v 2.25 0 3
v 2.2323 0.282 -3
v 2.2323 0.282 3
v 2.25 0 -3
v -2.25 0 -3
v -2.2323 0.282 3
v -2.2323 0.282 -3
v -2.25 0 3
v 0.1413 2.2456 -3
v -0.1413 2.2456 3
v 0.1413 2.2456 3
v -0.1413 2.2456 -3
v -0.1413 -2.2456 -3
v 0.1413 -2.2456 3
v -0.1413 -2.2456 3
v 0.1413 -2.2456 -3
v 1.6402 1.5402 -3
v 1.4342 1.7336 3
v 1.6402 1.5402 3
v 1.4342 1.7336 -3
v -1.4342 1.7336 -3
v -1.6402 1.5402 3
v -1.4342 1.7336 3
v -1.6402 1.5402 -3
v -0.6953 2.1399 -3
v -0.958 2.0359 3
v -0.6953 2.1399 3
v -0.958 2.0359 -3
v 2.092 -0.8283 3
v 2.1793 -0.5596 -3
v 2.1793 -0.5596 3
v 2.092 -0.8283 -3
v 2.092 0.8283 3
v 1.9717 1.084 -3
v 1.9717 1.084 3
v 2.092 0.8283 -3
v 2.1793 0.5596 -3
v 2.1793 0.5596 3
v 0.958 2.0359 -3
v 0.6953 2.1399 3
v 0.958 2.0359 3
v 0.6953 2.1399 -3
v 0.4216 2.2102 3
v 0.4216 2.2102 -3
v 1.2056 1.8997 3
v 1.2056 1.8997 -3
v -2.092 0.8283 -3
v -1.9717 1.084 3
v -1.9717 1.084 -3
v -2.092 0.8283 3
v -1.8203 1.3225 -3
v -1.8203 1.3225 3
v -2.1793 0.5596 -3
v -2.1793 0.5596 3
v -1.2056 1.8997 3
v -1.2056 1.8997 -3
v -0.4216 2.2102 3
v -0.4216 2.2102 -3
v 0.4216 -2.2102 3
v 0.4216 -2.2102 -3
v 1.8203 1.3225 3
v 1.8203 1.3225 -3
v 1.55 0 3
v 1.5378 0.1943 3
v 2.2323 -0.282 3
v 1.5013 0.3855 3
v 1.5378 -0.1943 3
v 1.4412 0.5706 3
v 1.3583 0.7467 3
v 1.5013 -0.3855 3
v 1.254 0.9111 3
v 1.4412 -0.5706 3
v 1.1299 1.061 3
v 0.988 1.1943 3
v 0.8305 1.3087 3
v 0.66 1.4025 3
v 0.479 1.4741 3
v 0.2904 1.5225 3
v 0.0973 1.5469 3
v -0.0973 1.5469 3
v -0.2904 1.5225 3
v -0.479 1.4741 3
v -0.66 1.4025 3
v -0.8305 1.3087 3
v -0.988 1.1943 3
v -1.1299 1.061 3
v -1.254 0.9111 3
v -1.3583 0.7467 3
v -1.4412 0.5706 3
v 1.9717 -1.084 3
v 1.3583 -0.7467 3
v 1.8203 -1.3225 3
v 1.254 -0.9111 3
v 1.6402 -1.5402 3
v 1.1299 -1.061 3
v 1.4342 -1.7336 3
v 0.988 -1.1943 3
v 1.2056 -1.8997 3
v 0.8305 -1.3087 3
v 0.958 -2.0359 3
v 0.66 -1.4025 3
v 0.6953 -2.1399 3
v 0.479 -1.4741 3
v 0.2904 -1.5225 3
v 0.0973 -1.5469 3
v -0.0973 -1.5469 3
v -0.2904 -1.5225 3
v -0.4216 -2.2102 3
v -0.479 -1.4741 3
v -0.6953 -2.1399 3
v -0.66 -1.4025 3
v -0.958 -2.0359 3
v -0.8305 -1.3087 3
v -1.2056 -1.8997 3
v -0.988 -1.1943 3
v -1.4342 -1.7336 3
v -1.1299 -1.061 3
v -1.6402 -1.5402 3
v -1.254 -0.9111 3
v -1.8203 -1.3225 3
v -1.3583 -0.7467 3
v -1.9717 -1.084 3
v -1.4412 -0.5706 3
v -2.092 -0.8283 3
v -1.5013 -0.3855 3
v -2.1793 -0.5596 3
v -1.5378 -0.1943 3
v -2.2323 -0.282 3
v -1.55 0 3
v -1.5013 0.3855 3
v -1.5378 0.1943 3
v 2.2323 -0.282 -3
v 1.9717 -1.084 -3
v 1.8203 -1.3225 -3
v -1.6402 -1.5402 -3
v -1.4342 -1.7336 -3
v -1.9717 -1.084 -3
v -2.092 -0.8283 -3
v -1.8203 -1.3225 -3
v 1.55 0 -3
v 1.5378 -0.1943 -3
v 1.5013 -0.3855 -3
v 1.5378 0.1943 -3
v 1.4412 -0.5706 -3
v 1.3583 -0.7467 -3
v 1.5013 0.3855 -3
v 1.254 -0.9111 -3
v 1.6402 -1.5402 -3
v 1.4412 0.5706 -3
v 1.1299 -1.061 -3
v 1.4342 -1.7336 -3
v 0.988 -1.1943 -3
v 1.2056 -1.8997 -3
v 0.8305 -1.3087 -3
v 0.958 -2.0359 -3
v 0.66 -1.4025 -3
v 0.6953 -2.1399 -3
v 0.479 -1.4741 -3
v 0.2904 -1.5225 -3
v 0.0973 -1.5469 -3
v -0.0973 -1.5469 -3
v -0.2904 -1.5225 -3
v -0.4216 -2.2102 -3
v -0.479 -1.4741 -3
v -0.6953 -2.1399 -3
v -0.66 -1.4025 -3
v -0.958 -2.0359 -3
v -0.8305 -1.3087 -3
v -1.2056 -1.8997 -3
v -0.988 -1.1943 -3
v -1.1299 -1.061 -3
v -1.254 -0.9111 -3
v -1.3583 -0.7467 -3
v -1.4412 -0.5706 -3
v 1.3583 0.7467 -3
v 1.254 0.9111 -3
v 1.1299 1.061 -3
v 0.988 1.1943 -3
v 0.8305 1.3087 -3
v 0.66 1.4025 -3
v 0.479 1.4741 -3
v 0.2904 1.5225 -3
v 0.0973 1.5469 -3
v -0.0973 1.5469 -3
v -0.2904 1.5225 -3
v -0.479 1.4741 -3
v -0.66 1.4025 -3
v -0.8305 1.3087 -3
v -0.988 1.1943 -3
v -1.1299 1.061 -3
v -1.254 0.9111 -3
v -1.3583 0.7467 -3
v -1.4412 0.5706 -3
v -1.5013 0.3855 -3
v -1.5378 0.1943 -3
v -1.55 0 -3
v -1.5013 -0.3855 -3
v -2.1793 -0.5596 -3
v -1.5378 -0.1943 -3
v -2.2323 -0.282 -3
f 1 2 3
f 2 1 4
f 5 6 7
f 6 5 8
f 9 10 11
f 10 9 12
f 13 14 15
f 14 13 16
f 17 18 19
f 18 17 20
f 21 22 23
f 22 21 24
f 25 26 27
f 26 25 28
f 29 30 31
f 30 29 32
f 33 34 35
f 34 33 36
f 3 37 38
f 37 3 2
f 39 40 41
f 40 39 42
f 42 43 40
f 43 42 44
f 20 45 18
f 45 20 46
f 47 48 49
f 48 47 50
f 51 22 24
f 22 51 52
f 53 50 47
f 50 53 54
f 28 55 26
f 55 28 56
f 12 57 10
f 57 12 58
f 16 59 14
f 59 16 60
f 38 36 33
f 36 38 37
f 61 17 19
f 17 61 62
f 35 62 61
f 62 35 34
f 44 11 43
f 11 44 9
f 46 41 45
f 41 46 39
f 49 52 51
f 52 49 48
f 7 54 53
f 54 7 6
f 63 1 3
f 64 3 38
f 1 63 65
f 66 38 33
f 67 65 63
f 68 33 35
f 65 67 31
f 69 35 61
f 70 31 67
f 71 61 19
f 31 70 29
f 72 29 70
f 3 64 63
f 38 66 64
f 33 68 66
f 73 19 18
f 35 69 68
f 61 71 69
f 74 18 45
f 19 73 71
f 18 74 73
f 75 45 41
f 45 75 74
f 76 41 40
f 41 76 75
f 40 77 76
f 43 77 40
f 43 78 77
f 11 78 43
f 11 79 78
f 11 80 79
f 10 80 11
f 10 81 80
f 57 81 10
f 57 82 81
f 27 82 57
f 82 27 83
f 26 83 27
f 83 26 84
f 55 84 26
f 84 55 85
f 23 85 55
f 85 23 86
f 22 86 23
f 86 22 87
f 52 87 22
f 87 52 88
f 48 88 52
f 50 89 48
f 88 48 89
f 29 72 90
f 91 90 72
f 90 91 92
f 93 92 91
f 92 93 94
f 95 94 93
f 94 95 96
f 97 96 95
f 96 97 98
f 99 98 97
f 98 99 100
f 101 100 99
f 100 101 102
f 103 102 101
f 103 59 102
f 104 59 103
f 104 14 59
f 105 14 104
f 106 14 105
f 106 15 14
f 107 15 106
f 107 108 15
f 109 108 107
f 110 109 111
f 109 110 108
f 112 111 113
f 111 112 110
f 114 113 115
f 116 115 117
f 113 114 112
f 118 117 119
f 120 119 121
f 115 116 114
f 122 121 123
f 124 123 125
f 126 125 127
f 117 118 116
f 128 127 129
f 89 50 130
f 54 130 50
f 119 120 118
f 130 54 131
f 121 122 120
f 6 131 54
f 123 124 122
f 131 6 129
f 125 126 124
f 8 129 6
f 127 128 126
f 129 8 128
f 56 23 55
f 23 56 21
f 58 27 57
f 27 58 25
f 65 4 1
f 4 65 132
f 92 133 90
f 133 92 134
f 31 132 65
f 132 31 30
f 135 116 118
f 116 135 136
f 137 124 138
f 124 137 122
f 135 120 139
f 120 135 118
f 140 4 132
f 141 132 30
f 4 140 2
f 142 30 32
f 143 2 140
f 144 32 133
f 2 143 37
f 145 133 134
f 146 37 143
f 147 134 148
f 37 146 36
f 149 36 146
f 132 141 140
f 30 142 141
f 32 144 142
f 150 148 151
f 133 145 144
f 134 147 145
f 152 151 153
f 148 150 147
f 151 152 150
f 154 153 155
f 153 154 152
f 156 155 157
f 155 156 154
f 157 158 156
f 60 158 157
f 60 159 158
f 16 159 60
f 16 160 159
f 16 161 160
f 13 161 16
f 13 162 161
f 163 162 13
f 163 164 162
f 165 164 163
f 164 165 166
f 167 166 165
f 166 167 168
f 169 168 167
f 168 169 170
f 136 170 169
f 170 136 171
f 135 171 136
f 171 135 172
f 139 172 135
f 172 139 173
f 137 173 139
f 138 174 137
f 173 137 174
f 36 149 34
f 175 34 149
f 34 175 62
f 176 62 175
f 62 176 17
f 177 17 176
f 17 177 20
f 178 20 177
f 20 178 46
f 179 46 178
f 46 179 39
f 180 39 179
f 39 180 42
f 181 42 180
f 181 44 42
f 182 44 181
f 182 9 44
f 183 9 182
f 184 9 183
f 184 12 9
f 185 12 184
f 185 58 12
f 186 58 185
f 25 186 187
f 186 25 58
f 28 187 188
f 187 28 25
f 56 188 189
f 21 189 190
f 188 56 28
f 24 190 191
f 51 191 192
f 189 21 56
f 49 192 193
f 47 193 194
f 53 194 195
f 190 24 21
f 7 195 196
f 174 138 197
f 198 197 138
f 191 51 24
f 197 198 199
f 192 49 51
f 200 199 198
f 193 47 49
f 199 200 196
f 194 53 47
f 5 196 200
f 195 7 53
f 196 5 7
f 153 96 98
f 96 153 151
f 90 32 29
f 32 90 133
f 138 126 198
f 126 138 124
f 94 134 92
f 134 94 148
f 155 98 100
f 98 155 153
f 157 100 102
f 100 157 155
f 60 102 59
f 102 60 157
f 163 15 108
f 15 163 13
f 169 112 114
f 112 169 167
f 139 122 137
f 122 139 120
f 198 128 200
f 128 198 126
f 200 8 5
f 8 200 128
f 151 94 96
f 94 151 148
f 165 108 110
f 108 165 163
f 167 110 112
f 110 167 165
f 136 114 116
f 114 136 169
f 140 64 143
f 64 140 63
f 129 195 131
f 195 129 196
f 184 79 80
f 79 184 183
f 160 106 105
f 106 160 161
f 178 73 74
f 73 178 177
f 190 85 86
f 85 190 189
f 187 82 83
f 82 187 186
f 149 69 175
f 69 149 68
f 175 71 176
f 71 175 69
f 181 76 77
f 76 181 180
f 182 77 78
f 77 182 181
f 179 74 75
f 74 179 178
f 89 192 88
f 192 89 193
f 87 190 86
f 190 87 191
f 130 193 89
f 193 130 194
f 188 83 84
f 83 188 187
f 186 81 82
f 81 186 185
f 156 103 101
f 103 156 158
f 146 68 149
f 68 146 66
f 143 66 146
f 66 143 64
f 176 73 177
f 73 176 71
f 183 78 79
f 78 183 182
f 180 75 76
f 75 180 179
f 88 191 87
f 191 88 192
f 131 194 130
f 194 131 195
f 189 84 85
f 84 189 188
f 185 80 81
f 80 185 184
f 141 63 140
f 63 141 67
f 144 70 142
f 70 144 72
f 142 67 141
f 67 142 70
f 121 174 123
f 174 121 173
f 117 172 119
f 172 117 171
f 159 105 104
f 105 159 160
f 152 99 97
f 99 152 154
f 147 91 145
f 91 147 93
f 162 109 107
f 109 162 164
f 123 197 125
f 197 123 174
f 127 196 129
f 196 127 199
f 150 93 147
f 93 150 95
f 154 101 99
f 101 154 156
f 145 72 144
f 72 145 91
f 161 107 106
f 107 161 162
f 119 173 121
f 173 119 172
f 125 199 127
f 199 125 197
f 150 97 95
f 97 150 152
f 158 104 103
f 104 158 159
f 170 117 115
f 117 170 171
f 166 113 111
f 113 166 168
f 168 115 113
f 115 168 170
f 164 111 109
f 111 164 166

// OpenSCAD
$fn = 50;


difference() {
	union() {
		translate(v = [0, 0, -3.0000000000]) {
			cylinder(h = 6, r = 2.2500000000);
		}
	}
	union() {
		translate(v = [0, 0, -100.0000000000]) {
			cylinder(h = 200, r = 1.5500000000);
		}
	}
}
